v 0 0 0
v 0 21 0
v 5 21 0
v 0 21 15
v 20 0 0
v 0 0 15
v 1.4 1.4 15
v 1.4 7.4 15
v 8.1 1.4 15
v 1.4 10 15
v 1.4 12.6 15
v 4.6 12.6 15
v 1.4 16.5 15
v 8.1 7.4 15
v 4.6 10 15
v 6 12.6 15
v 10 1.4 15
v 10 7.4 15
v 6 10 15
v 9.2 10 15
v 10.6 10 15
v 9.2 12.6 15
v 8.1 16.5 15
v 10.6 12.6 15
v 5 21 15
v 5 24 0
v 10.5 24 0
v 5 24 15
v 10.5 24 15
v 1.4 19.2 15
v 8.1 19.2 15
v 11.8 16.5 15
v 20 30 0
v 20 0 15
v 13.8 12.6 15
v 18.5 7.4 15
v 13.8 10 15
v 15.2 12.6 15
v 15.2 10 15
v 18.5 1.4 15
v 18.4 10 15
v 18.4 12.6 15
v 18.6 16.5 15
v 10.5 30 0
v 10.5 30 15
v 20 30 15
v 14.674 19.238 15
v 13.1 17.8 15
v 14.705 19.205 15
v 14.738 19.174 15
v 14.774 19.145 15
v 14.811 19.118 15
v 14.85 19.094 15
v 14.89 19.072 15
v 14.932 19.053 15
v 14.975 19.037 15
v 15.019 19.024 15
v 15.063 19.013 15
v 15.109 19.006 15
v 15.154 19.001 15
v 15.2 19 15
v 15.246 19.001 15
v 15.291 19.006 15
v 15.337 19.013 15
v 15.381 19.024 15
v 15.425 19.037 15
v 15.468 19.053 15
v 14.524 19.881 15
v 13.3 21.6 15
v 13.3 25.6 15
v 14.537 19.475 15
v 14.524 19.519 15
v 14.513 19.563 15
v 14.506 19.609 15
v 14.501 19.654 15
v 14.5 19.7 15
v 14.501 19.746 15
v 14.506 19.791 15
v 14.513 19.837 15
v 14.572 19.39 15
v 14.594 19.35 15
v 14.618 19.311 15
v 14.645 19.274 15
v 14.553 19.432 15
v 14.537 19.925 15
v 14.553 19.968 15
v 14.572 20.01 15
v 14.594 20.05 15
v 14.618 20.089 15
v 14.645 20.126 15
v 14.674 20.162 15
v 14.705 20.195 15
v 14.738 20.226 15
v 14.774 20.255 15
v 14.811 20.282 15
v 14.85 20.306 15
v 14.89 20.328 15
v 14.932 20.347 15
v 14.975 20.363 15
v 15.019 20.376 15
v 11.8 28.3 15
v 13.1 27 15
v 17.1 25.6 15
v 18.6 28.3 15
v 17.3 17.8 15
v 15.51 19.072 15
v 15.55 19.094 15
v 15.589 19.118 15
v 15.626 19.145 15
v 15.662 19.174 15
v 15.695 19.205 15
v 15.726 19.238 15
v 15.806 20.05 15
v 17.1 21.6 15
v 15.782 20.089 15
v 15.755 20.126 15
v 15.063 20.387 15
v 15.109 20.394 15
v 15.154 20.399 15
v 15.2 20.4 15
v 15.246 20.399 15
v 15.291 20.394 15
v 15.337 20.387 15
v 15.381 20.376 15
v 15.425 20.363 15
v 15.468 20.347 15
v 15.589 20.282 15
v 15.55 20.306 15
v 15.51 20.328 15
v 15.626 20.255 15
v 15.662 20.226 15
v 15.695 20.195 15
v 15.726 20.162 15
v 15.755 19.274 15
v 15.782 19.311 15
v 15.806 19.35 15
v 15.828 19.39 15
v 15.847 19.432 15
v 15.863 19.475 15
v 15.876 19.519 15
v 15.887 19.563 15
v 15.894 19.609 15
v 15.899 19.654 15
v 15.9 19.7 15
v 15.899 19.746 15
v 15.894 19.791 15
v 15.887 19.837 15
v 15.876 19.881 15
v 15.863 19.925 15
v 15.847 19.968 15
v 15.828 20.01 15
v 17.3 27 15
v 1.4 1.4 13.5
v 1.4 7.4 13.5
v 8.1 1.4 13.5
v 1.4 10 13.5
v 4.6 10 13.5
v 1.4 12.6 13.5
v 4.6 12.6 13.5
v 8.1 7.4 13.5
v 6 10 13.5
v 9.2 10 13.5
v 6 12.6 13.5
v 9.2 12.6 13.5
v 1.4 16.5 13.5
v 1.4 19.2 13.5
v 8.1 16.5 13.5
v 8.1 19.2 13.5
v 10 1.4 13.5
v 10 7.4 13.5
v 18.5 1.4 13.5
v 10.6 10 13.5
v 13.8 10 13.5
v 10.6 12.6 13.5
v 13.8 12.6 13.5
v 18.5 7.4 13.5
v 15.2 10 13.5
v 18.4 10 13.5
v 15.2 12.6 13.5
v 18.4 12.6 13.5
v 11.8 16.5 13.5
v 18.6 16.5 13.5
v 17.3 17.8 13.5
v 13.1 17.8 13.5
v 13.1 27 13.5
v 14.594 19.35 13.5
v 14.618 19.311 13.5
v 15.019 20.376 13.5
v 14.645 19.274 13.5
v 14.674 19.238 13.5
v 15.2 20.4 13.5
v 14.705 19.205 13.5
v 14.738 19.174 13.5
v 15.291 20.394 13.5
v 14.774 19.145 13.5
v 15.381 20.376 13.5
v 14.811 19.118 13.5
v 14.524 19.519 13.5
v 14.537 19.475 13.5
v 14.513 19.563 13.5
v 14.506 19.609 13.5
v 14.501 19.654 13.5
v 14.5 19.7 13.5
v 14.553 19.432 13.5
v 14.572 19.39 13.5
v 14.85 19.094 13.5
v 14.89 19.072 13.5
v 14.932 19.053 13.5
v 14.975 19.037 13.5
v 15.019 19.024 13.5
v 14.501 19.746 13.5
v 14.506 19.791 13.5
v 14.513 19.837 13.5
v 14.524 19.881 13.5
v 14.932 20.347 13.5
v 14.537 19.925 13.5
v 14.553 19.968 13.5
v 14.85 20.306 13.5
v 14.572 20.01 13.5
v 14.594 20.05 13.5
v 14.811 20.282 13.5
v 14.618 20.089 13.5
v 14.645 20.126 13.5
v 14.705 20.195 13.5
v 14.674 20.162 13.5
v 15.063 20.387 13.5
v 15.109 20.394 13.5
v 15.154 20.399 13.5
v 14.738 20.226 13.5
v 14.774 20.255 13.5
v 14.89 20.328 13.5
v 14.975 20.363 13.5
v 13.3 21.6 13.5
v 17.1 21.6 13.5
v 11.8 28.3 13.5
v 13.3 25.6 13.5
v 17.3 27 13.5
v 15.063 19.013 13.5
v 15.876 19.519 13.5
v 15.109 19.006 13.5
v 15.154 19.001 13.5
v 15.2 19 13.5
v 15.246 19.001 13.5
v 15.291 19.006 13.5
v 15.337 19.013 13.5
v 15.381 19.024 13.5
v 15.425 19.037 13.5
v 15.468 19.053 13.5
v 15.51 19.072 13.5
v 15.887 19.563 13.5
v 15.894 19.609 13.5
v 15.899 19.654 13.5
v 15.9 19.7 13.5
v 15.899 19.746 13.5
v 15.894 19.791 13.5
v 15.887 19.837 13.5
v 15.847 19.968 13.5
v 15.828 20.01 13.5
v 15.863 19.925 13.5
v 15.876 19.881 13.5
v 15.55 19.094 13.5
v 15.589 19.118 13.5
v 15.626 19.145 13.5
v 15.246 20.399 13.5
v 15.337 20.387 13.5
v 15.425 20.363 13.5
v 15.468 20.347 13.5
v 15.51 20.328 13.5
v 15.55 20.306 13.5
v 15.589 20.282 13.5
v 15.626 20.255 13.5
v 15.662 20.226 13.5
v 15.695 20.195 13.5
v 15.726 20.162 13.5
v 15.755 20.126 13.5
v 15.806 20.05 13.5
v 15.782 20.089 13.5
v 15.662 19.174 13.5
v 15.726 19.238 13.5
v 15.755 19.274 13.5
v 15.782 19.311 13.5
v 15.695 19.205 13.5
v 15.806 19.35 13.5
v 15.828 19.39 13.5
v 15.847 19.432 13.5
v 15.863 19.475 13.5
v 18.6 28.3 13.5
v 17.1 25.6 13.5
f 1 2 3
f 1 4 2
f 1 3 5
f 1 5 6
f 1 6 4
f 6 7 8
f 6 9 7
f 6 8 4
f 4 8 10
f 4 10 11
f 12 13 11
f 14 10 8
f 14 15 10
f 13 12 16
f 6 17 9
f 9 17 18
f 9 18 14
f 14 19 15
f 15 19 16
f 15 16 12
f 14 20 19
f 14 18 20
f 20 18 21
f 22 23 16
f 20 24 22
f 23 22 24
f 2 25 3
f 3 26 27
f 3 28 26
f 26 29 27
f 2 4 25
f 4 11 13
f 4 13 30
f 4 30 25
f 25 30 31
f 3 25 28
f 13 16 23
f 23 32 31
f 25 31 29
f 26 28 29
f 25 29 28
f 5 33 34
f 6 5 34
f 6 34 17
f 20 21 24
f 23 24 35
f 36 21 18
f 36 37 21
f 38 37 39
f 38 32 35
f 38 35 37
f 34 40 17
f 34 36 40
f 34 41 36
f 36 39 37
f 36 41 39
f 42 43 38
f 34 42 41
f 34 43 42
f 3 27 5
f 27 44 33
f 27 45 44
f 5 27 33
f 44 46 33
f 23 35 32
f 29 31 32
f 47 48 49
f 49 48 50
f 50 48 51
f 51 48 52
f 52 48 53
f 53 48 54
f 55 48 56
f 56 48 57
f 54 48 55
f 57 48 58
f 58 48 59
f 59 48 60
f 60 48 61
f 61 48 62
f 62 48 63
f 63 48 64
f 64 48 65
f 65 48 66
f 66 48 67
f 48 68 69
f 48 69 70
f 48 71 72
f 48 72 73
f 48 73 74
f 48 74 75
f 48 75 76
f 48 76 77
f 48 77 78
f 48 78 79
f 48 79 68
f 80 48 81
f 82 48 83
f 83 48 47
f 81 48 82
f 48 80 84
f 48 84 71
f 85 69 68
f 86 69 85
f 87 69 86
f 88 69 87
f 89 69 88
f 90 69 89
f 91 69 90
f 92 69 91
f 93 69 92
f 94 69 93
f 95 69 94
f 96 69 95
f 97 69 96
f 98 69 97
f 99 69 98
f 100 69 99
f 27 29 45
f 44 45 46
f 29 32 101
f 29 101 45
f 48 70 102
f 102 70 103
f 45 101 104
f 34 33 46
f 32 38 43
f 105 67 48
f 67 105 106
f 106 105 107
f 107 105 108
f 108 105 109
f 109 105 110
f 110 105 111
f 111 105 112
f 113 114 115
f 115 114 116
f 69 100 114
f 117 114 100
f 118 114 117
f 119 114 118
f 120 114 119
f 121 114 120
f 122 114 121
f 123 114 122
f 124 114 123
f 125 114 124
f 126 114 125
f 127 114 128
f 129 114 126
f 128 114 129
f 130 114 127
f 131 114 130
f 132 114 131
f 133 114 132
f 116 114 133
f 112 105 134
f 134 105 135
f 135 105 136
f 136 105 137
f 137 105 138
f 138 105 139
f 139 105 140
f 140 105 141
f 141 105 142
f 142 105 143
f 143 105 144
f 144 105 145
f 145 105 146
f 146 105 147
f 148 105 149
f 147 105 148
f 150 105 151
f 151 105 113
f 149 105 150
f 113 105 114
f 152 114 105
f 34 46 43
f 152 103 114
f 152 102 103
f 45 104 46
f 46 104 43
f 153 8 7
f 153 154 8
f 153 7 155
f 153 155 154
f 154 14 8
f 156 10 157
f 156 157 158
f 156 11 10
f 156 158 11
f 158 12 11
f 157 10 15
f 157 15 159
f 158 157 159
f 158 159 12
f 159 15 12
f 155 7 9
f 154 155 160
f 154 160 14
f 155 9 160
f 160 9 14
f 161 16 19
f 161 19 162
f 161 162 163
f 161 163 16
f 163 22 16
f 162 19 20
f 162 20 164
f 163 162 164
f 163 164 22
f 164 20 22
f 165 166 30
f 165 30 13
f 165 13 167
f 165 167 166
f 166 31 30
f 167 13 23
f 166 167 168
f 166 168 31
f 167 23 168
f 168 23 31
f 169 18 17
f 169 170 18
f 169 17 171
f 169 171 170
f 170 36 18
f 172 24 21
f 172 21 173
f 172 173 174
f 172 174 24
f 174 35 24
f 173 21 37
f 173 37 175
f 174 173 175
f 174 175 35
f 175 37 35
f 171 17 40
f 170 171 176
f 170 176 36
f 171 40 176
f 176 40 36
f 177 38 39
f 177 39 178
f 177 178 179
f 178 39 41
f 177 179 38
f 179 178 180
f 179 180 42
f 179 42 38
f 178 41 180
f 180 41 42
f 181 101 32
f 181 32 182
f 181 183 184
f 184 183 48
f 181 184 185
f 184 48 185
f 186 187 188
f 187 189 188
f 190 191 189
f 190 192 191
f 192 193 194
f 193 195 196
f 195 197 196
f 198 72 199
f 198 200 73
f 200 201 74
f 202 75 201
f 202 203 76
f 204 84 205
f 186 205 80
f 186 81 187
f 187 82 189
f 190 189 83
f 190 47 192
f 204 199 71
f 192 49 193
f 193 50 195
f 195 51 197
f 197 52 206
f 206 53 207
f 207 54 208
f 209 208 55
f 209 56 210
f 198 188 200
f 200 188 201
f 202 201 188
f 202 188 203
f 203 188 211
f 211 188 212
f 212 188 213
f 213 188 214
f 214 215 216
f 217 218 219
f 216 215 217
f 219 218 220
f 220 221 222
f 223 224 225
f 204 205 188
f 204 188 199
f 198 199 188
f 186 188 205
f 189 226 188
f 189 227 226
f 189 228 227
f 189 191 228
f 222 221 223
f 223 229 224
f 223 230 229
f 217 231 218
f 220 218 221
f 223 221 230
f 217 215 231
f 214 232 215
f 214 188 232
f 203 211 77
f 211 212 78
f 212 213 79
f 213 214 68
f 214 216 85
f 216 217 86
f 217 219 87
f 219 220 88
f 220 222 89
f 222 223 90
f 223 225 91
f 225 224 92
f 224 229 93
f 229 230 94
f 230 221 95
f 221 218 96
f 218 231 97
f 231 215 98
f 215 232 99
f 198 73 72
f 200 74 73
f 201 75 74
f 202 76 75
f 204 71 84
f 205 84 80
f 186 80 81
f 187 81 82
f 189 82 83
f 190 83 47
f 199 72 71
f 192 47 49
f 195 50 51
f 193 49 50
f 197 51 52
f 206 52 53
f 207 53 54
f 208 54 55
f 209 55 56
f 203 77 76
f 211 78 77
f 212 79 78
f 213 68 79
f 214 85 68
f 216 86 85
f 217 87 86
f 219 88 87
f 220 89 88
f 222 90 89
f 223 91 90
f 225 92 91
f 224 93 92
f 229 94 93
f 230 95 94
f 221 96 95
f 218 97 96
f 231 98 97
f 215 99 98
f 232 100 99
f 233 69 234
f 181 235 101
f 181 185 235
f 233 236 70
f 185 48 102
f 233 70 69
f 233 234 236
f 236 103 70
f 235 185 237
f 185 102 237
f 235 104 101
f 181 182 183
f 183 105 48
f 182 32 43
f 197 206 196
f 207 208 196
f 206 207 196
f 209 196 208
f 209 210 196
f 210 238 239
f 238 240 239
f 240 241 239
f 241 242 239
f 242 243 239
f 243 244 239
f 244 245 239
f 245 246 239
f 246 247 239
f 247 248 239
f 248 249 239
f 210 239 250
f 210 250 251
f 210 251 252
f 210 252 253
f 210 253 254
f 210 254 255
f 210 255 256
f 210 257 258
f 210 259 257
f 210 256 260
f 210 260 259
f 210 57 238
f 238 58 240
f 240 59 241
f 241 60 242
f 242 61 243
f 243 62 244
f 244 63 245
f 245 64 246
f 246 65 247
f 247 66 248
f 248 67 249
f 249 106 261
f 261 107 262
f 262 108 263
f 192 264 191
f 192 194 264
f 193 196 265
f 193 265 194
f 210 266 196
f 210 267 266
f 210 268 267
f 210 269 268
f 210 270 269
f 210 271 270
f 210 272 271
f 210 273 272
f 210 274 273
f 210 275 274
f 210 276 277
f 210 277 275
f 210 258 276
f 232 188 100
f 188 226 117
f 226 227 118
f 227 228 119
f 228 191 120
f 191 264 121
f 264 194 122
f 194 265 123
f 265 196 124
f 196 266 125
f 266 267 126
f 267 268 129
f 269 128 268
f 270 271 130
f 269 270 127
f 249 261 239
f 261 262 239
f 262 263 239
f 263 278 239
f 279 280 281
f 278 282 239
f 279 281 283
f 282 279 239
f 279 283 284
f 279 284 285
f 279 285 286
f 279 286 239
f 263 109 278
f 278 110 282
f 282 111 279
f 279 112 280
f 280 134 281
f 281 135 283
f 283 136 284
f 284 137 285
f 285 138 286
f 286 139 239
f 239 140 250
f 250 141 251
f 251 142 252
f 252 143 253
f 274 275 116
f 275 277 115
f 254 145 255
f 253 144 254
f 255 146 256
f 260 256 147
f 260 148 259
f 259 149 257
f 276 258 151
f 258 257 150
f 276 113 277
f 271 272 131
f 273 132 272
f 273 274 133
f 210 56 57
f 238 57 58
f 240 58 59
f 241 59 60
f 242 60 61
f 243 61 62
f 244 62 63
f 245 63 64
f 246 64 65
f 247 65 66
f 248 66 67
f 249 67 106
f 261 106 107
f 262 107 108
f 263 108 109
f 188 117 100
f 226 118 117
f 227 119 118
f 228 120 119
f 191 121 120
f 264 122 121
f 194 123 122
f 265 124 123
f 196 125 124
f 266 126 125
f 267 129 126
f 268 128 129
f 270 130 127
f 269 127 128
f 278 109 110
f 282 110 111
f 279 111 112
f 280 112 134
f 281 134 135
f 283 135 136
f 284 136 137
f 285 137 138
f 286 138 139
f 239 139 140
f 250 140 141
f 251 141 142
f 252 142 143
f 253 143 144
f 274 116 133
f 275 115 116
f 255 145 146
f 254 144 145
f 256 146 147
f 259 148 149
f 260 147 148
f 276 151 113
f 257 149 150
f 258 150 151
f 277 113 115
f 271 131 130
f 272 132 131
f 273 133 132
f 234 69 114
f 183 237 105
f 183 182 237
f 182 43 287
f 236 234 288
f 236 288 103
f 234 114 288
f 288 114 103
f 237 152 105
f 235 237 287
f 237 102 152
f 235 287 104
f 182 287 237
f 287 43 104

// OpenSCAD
// Building miniatures — Tech, AI & Digital
// Units: millimetres. X = width; Y = facade height; Z = depth.
// Print flat on the back at Z=0. Front Z=15; recesses are 1.5 mm deep.
$fn=96;
depth=15;
recess=1.5;
module rect(x,y,w,h) { translate([x,y]) square([w,h]); }
module disc(x,y,r) { translate([x,y]) circle(r=r); }
module rr(x,y,w,h,r=1) { hull() for(a=[x+r,x+w-r],b=[y+r,y+h-r]) disc(a,b,r); }
module stroke(a,b,w=1.4) { hull() {disc(a[0],a[1],w/2);disc(b[0],b[1],w/2);} }
module ring(x,y,r,w=1.4) { difference(){disc(x,y,r);disc(x,y,r-w);} }
module framed(x,y,w,h,t=1.4) { difference(){rect(x,y,w,h);rect(x+t,y+t,w-2*t,h-2*t);} }
module arrow(a,b,w=1.5) { v=b-a; u=v/norm(v); n=[-u[1],u[0]]; tip=b; neck=b-u*2.8; stroke(a,neck,w); polygon([tip,neck+n*1.9,neck-n*1.9]); }
module building(){difference(){linear_extrude(height=depth) silhouette();translate([0,0,depth-recess]) linear_extrude(height=recess+0.2) details();}}
building();

module silhouette(){polygon([[0,0],[20,0],[20,30],[10.5,30],[10.5,24],[5,24],[5,21],[0,21]]);}
module details(){
 rect(1.4,1.4,6.7,6.0);rect(10,1.4,8.5,6.0);
 for(x=[1.4,6.0,10.6,15.2]) rect(x,10,3.2,2.6);
 framed(11.8,16.5,6.8,11.8,1.3);
 rect(13.3,21.6,3.8,4.0);
 disc(15.2,19.7,0.7);
 rect(1.4,16.5,6.7,2.7);
}
